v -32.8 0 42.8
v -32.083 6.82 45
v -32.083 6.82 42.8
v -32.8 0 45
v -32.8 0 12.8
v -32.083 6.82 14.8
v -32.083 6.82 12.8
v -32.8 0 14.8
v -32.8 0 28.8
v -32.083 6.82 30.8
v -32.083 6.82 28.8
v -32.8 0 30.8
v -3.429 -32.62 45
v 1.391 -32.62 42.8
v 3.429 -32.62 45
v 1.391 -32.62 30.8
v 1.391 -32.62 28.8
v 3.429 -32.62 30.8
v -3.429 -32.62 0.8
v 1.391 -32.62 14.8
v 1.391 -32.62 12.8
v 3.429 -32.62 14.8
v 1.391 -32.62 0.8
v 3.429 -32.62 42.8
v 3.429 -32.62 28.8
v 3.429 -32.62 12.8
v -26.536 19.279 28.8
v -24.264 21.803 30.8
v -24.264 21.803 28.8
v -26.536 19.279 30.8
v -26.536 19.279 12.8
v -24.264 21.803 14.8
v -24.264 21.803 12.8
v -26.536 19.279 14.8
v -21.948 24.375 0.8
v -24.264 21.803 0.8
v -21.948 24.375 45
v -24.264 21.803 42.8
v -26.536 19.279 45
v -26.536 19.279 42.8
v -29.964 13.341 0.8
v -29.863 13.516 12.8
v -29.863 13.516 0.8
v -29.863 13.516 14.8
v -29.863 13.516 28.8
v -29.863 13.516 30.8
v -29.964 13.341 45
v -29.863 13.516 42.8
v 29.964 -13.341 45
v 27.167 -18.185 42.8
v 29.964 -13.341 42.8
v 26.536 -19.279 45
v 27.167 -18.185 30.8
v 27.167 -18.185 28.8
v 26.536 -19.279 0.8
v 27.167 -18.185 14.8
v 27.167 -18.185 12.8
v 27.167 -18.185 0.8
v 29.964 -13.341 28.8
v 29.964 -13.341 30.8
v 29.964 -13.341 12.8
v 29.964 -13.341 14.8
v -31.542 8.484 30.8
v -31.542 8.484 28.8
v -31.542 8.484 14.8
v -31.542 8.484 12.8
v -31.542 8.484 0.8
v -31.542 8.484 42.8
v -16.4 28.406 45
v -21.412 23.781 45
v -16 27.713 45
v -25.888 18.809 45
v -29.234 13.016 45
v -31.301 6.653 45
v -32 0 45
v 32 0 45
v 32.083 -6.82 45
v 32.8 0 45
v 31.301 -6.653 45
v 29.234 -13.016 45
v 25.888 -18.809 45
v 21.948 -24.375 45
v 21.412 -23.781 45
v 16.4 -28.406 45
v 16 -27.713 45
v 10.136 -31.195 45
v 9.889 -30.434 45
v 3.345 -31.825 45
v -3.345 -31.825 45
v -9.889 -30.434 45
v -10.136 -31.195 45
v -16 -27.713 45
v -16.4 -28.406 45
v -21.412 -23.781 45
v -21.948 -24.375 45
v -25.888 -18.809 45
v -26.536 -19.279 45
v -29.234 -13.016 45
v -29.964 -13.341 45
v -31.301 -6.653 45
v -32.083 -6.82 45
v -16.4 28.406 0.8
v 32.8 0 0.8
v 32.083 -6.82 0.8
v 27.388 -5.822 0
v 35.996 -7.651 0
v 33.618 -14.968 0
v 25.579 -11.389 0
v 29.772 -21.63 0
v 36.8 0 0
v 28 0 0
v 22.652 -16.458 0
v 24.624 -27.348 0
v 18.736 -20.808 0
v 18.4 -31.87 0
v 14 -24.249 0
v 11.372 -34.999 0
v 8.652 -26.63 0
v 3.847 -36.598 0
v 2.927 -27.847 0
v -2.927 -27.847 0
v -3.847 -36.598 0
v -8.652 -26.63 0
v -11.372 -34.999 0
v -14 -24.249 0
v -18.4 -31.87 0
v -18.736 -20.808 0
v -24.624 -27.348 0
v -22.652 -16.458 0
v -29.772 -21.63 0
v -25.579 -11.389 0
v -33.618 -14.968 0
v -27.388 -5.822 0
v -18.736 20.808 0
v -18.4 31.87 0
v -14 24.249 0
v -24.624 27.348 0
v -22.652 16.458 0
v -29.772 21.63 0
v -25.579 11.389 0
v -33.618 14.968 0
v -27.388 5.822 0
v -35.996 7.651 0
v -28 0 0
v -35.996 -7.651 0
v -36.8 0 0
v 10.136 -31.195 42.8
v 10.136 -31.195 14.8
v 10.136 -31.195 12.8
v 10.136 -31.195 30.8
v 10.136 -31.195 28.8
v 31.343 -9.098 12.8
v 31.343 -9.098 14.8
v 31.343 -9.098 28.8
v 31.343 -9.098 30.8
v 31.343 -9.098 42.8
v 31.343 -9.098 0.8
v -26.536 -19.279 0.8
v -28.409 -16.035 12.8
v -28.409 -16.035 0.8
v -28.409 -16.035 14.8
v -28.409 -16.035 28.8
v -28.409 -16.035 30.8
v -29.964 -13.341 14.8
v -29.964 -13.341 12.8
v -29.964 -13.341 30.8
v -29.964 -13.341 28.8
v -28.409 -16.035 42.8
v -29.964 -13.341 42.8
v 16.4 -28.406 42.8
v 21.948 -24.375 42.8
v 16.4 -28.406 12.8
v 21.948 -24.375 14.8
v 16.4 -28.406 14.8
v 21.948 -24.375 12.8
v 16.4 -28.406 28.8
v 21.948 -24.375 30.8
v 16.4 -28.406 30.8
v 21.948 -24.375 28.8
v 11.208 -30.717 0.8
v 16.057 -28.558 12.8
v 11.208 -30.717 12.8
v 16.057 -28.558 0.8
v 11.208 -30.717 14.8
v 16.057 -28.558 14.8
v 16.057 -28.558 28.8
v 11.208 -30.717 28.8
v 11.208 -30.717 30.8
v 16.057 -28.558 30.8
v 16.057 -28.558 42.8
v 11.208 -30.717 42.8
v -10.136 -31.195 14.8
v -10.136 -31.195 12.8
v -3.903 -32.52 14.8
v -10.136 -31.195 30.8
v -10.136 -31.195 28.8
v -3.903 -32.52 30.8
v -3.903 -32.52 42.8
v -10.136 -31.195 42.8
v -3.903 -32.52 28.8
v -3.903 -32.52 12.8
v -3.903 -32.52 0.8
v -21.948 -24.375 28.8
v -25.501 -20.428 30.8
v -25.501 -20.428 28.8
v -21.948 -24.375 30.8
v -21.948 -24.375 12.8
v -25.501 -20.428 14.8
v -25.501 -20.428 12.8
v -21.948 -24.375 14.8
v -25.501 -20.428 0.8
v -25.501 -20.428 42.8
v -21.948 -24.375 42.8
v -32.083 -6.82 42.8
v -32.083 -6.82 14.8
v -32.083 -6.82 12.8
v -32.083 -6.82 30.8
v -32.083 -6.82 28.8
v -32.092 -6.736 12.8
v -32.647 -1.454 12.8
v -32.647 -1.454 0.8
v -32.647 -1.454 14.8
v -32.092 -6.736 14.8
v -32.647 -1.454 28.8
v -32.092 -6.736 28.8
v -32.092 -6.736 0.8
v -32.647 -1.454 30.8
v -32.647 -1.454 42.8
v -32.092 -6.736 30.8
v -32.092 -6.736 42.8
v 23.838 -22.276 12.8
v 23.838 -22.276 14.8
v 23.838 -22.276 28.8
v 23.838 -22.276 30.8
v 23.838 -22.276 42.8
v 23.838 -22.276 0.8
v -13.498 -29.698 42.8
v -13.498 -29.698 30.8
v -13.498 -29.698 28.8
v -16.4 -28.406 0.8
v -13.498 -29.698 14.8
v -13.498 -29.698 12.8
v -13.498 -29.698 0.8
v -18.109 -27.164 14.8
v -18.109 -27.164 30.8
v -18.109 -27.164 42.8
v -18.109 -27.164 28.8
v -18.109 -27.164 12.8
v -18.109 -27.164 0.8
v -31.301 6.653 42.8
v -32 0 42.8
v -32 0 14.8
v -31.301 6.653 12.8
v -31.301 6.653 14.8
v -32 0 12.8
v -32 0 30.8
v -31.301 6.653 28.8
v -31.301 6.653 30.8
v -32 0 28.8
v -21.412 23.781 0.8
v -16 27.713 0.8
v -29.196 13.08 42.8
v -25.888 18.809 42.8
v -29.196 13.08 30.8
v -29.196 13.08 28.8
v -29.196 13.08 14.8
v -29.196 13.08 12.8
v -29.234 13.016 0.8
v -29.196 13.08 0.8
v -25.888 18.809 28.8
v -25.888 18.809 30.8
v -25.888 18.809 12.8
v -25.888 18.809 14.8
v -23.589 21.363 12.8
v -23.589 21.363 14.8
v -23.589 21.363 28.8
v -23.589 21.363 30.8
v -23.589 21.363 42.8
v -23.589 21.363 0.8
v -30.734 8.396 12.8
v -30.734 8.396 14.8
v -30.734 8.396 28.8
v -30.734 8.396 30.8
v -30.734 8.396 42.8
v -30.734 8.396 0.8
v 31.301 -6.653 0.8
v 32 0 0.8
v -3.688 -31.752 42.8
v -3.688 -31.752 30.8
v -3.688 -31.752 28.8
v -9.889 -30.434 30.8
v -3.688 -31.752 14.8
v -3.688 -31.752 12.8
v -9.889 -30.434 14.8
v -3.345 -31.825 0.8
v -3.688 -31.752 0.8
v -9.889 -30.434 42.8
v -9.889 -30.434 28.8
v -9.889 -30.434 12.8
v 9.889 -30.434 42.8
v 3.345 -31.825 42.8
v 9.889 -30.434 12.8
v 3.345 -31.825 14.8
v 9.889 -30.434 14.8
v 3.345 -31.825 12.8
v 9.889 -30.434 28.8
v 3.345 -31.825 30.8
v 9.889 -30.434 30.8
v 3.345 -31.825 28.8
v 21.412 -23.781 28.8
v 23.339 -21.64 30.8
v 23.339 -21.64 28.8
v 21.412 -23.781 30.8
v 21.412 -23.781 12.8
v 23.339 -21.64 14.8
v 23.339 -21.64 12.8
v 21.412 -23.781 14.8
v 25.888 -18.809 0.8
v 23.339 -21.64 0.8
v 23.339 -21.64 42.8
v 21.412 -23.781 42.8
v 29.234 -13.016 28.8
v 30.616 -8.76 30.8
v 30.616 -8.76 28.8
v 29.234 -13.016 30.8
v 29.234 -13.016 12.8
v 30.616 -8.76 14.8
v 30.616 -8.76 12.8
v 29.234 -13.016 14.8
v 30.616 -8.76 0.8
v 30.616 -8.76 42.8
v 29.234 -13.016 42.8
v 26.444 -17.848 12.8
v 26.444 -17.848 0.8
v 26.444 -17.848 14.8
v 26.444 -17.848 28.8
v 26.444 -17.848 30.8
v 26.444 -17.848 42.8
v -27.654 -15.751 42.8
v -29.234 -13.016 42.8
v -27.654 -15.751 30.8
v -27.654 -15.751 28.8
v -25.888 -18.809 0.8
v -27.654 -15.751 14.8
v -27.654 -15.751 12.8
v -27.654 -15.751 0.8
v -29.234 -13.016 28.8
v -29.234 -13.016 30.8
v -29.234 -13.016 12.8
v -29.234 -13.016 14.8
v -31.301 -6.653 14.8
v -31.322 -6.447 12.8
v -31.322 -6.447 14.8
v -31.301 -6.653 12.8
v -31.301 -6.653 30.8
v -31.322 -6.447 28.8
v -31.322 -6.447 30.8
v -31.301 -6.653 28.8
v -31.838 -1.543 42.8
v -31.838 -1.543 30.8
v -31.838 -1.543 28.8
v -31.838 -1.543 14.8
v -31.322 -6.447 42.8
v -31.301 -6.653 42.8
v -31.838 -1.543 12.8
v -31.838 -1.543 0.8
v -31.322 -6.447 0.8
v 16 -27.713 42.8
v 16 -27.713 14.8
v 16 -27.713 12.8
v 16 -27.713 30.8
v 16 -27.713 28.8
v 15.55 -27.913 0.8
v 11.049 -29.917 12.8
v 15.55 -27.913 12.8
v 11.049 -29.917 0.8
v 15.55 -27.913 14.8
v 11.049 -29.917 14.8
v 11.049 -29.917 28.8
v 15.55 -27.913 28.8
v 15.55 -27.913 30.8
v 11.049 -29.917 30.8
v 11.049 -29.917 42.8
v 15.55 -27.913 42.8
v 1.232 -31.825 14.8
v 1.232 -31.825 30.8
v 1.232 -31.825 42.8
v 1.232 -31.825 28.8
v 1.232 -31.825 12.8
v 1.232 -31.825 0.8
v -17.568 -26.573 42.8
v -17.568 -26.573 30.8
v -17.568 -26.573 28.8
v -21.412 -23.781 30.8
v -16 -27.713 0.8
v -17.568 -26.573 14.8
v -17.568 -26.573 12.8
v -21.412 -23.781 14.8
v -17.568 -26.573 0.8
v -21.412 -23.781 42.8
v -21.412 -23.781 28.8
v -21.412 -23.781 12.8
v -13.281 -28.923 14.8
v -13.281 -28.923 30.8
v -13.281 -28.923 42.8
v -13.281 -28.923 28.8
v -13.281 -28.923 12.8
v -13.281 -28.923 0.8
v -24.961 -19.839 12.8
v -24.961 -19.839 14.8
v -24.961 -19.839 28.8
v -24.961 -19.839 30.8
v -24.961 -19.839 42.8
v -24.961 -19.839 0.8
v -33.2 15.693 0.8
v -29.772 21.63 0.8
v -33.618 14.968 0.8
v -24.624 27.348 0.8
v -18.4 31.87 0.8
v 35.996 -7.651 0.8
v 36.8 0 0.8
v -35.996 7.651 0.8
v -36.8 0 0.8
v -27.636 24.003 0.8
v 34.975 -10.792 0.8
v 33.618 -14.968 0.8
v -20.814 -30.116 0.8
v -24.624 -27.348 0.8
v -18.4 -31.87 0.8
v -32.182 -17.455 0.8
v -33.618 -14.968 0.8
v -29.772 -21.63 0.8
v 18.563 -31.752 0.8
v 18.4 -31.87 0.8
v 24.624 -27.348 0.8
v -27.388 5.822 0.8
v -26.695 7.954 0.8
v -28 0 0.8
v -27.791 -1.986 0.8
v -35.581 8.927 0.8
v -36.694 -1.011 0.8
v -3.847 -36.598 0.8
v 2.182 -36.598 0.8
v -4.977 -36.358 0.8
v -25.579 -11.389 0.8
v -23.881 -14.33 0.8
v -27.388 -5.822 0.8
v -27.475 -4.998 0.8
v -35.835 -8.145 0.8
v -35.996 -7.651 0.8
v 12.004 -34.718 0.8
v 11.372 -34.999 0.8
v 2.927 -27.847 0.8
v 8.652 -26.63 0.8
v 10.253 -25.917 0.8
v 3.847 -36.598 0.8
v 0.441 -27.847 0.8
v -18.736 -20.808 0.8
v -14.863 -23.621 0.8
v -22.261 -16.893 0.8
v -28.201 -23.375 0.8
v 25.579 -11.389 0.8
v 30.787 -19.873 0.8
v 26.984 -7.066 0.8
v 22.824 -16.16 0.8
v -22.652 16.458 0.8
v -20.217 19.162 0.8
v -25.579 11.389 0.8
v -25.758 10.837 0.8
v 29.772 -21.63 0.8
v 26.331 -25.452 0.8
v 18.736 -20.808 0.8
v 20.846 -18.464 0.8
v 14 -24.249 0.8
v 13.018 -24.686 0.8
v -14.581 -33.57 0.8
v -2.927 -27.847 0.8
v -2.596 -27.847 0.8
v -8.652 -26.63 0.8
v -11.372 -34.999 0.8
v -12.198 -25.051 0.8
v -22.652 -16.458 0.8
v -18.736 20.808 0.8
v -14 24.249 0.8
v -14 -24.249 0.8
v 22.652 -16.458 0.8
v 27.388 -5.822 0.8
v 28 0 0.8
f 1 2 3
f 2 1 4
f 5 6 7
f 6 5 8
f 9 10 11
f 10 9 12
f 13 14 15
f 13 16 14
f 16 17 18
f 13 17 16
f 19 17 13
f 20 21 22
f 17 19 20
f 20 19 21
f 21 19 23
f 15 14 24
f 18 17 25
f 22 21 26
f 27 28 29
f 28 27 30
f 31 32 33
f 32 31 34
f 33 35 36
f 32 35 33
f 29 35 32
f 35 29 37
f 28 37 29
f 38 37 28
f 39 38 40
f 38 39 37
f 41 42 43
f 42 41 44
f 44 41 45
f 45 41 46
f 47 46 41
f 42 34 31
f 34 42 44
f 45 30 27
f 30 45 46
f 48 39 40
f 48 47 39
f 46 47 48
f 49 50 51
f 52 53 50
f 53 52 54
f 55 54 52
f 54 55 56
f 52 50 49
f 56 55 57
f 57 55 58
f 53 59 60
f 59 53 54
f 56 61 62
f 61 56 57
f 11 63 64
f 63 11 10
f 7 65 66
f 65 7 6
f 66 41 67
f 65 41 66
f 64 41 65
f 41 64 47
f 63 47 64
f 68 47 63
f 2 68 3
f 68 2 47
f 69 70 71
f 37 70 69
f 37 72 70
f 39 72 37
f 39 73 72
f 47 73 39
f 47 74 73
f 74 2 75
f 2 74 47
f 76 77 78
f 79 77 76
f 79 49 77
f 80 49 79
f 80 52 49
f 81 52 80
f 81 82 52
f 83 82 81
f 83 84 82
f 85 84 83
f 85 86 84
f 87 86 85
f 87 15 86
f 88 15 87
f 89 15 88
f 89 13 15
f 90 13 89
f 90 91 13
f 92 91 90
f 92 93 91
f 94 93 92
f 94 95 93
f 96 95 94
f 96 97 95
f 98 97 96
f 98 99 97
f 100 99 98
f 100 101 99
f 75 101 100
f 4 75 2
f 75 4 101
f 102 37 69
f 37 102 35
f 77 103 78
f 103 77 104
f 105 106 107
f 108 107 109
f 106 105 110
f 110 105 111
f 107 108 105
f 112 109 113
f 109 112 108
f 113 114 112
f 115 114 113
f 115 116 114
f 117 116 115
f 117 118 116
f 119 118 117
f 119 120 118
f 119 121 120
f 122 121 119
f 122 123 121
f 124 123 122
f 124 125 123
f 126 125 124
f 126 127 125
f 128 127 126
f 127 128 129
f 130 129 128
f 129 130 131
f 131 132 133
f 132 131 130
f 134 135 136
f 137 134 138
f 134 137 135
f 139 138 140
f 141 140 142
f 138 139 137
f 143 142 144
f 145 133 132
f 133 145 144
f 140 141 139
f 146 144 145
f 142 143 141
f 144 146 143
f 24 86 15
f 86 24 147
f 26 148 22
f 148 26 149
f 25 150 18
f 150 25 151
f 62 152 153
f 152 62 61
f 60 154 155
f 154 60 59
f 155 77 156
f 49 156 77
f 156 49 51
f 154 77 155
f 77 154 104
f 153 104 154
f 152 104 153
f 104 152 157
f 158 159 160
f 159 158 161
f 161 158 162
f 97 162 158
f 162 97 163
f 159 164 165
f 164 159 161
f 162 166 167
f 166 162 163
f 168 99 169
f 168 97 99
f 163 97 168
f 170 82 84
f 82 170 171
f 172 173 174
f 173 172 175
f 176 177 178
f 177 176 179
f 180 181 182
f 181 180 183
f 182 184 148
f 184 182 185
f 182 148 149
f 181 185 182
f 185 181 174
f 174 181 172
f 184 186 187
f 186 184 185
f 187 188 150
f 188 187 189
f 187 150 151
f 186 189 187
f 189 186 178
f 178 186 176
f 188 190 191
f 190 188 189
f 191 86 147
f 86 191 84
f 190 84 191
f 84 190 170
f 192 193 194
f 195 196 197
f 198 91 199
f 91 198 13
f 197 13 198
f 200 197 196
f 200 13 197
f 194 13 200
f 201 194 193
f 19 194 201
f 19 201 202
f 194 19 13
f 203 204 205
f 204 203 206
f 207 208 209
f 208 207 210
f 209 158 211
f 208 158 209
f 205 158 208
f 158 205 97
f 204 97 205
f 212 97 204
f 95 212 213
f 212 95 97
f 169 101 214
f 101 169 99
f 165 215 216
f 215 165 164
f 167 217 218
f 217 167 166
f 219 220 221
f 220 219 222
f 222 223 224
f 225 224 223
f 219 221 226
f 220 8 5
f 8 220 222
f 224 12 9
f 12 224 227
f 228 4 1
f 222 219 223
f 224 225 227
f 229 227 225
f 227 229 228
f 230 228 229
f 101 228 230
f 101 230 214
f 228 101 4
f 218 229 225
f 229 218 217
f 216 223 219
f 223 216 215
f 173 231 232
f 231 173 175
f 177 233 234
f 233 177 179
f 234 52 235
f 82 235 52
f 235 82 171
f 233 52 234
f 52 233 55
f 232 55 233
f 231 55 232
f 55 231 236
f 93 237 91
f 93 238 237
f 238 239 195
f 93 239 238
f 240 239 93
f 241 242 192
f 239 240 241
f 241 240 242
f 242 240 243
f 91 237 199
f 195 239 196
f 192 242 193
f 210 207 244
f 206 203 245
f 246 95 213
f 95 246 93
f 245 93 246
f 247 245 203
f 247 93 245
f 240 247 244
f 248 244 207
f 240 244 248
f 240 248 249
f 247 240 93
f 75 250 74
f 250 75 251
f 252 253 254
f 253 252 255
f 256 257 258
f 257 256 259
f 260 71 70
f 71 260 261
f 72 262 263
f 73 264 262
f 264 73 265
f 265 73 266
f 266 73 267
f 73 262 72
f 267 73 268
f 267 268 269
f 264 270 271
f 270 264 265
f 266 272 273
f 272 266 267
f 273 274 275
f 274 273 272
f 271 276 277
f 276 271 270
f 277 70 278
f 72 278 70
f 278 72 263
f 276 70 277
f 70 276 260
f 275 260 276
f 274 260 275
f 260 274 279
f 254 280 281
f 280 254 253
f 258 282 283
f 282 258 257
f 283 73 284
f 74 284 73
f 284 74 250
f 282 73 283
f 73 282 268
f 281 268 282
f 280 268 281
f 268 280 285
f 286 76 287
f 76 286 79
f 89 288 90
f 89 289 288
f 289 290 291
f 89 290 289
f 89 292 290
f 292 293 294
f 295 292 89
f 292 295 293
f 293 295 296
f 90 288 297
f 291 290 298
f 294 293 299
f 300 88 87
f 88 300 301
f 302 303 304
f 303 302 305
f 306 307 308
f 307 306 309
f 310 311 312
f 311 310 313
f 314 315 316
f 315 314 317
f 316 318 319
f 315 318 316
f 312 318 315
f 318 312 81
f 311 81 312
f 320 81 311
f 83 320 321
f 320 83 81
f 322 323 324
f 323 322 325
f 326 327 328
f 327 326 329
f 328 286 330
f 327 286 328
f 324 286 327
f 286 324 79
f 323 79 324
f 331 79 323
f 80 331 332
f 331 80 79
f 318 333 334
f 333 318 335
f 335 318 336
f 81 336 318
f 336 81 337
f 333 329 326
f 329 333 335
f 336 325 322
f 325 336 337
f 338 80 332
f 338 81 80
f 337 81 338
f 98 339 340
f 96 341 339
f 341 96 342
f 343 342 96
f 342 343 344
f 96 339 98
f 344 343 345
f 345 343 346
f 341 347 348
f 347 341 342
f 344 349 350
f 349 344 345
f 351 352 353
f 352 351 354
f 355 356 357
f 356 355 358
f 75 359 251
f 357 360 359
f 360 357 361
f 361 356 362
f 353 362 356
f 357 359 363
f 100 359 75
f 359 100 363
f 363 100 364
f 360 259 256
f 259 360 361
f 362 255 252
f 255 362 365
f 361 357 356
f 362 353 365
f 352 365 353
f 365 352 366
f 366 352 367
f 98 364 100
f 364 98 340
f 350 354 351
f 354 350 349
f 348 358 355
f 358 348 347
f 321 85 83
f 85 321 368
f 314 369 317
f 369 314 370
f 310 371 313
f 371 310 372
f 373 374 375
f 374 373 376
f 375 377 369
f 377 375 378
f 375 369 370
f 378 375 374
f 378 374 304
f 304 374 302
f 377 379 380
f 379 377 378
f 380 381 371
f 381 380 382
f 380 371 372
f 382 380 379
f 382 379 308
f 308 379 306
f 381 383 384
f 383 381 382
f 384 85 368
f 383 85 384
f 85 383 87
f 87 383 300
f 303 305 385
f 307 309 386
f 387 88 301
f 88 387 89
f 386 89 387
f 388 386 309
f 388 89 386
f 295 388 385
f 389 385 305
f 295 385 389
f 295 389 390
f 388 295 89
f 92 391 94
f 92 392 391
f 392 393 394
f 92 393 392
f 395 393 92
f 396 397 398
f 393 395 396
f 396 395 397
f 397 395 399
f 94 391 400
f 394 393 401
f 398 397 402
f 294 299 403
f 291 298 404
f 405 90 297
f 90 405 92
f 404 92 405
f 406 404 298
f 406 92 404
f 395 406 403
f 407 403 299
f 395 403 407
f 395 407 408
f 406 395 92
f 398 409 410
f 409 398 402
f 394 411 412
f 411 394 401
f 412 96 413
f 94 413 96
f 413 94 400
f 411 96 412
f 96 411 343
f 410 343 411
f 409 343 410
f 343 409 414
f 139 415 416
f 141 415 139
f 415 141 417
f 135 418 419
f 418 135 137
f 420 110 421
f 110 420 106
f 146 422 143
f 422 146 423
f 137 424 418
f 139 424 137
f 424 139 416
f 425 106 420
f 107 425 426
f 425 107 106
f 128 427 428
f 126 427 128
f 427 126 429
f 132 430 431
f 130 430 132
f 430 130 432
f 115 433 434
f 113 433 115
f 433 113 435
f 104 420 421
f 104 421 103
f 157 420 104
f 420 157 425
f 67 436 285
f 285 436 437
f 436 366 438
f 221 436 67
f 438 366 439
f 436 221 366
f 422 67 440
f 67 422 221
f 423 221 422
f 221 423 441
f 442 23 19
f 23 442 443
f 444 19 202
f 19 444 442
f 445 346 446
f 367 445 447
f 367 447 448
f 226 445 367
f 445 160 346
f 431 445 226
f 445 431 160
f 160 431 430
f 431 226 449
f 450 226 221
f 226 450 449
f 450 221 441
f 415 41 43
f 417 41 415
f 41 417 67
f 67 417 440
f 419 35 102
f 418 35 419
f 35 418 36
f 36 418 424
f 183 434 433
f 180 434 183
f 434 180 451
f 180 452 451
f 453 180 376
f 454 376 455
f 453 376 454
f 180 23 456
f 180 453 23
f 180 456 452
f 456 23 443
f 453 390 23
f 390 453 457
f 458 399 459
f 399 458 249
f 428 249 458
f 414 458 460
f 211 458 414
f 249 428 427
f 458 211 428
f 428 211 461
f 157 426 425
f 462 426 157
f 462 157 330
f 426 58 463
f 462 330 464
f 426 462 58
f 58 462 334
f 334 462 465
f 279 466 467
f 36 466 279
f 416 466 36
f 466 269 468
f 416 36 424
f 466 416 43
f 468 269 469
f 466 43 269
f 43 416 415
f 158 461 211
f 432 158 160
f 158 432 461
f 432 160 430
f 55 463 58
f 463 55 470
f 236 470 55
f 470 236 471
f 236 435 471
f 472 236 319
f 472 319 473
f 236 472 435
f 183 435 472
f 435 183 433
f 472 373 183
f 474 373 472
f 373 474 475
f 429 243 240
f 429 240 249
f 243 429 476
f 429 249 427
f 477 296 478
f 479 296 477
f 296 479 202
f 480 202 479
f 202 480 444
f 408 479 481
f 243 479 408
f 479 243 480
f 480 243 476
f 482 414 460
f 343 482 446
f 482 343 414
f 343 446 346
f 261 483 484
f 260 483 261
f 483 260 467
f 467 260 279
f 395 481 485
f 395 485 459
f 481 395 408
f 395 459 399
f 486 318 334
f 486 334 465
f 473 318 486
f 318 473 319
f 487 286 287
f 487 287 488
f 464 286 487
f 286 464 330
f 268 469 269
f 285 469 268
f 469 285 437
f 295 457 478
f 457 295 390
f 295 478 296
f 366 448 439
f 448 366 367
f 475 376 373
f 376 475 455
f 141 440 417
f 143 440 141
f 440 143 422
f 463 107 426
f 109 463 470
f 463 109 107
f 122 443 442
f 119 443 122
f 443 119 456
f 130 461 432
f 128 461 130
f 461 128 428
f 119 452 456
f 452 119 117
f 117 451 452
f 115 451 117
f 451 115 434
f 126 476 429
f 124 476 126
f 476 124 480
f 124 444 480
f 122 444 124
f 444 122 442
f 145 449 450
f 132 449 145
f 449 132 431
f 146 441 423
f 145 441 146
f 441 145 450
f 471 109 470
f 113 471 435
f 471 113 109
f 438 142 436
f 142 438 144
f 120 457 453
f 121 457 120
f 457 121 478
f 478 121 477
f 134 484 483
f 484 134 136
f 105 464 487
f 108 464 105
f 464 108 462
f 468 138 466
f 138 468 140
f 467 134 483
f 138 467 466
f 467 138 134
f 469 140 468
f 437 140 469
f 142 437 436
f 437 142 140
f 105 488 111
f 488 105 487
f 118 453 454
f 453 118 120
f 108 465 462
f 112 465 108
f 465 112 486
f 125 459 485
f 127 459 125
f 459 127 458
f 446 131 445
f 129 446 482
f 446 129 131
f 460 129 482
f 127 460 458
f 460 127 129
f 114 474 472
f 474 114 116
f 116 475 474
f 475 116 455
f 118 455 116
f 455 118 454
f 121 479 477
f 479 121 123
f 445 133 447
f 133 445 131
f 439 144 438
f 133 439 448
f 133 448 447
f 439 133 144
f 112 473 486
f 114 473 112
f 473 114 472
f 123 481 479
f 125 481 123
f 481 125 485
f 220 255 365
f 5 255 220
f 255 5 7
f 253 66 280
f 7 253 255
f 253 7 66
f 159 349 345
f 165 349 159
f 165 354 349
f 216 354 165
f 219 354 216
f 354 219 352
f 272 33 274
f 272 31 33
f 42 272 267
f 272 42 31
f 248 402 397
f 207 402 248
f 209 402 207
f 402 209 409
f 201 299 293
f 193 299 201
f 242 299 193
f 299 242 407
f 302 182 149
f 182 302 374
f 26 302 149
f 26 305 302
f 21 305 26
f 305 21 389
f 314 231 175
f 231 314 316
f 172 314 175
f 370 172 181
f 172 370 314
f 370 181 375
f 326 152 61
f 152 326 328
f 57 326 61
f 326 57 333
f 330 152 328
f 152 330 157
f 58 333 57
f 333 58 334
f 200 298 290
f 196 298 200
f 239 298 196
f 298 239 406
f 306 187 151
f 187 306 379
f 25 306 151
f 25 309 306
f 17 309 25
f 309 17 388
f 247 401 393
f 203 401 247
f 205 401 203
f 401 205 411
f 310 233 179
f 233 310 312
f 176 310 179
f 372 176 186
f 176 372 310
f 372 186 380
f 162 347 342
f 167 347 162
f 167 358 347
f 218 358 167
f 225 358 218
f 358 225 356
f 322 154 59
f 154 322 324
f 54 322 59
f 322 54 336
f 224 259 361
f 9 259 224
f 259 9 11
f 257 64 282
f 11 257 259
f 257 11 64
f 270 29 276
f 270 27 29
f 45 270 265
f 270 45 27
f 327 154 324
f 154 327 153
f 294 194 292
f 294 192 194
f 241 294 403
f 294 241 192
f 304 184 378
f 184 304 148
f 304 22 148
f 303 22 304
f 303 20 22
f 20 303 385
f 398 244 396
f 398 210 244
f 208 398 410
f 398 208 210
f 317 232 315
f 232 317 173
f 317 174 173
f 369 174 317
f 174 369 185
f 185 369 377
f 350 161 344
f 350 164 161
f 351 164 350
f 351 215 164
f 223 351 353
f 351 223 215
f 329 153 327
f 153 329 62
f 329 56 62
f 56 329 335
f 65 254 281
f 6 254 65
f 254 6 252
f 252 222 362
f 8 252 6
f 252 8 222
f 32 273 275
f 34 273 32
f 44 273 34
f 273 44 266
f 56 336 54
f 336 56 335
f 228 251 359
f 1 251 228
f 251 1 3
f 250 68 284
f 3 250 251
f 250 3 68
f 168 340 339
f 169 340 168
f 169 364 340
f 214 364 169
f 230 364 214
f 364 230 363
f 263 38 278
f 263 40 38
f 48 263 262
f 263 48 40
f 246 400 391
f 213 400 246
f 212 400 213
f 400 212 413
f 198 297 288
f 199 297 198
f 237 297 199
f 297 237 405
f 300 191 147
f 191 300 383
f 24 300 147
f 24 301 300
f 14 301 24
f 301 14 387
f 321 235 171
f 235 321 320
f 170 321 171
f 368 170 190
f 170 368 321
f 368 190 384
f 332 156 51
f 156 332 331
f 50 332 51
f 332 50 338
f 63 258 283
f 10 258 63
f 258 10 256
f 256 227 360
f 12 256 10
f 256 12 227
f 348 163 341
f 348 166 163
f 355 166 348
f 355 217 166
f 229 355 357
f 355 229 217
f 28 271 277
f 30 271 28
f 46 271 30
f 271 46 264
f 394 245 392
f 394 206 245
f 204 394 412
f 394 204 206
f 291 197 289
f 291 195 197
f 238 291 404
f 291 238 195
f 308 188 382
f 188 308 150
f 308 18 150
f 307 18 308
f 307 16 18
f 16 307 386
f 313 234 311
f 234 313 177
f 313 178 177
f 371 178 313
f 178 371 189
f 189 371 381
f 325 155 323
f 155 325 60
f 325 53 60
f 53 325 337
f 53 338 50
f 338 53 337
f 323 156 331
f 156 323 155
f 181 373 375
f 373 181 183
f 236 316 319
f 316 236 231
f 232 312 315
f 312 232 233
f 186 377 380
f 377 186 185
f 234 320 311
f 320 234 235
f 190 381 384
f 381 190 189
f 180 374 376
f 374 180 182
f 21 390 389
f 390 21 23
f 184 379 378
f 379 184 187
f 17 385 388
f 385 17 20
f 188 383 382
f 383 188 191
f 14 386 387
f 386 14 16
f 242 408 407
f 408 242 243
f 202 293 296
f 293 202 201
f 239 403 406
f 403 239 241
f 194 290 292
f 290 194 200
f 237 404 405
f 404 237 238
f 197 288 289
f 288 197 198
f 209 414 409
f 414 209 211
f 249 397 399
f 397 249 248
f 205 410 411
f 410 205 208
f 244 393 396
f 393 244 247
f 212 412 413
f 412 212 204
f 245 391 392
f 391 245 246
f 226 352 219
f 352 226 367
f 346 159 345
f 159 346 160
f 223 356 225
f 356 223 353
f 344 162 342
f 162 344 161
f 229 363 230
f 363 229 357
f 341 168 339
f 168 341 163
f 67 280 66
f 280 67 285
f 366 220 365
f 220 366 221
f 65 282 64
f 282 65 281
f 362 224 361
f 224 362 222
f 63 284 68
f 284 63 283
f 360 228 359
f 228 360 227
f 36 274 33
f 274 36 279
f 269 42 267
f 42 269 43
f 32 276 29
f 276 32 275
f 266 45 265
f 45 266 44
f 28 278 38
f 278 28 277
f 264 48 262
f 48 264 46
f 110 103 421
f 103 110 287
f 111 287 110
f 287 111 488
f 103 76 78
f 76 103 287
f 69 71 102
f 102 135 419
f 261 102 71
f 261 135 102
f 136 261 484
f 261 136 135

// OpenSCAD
difference(){
  union(){
    difference(){cylinder(r=32+0.8,h=45); translate([0,0,-1])cylinder(r=32,h=48);}
    difference(){cylinder(r=36.8,h=0.8); translate([0,0,-1])cylinder(r=28,h=48);}
  }
  translate([0,0,-10]) cube([50,50,100]);
  rotate([0,0,30]) translate([0,0,-10]) cube([50,50,100]);
  for(i = [25 : 215/8 : 215]){
    rotate([0,0,-i]) translate([0,-5,0.8]) cube([100,10,12]);
    rotate([0,0,-i]) translate([0,-5,0.8+14]) cube([100,10,14]);
    rotate([0,0,-i]) translate([0,-5,0.8+30]) cube([100,10,12]);
  }
}
